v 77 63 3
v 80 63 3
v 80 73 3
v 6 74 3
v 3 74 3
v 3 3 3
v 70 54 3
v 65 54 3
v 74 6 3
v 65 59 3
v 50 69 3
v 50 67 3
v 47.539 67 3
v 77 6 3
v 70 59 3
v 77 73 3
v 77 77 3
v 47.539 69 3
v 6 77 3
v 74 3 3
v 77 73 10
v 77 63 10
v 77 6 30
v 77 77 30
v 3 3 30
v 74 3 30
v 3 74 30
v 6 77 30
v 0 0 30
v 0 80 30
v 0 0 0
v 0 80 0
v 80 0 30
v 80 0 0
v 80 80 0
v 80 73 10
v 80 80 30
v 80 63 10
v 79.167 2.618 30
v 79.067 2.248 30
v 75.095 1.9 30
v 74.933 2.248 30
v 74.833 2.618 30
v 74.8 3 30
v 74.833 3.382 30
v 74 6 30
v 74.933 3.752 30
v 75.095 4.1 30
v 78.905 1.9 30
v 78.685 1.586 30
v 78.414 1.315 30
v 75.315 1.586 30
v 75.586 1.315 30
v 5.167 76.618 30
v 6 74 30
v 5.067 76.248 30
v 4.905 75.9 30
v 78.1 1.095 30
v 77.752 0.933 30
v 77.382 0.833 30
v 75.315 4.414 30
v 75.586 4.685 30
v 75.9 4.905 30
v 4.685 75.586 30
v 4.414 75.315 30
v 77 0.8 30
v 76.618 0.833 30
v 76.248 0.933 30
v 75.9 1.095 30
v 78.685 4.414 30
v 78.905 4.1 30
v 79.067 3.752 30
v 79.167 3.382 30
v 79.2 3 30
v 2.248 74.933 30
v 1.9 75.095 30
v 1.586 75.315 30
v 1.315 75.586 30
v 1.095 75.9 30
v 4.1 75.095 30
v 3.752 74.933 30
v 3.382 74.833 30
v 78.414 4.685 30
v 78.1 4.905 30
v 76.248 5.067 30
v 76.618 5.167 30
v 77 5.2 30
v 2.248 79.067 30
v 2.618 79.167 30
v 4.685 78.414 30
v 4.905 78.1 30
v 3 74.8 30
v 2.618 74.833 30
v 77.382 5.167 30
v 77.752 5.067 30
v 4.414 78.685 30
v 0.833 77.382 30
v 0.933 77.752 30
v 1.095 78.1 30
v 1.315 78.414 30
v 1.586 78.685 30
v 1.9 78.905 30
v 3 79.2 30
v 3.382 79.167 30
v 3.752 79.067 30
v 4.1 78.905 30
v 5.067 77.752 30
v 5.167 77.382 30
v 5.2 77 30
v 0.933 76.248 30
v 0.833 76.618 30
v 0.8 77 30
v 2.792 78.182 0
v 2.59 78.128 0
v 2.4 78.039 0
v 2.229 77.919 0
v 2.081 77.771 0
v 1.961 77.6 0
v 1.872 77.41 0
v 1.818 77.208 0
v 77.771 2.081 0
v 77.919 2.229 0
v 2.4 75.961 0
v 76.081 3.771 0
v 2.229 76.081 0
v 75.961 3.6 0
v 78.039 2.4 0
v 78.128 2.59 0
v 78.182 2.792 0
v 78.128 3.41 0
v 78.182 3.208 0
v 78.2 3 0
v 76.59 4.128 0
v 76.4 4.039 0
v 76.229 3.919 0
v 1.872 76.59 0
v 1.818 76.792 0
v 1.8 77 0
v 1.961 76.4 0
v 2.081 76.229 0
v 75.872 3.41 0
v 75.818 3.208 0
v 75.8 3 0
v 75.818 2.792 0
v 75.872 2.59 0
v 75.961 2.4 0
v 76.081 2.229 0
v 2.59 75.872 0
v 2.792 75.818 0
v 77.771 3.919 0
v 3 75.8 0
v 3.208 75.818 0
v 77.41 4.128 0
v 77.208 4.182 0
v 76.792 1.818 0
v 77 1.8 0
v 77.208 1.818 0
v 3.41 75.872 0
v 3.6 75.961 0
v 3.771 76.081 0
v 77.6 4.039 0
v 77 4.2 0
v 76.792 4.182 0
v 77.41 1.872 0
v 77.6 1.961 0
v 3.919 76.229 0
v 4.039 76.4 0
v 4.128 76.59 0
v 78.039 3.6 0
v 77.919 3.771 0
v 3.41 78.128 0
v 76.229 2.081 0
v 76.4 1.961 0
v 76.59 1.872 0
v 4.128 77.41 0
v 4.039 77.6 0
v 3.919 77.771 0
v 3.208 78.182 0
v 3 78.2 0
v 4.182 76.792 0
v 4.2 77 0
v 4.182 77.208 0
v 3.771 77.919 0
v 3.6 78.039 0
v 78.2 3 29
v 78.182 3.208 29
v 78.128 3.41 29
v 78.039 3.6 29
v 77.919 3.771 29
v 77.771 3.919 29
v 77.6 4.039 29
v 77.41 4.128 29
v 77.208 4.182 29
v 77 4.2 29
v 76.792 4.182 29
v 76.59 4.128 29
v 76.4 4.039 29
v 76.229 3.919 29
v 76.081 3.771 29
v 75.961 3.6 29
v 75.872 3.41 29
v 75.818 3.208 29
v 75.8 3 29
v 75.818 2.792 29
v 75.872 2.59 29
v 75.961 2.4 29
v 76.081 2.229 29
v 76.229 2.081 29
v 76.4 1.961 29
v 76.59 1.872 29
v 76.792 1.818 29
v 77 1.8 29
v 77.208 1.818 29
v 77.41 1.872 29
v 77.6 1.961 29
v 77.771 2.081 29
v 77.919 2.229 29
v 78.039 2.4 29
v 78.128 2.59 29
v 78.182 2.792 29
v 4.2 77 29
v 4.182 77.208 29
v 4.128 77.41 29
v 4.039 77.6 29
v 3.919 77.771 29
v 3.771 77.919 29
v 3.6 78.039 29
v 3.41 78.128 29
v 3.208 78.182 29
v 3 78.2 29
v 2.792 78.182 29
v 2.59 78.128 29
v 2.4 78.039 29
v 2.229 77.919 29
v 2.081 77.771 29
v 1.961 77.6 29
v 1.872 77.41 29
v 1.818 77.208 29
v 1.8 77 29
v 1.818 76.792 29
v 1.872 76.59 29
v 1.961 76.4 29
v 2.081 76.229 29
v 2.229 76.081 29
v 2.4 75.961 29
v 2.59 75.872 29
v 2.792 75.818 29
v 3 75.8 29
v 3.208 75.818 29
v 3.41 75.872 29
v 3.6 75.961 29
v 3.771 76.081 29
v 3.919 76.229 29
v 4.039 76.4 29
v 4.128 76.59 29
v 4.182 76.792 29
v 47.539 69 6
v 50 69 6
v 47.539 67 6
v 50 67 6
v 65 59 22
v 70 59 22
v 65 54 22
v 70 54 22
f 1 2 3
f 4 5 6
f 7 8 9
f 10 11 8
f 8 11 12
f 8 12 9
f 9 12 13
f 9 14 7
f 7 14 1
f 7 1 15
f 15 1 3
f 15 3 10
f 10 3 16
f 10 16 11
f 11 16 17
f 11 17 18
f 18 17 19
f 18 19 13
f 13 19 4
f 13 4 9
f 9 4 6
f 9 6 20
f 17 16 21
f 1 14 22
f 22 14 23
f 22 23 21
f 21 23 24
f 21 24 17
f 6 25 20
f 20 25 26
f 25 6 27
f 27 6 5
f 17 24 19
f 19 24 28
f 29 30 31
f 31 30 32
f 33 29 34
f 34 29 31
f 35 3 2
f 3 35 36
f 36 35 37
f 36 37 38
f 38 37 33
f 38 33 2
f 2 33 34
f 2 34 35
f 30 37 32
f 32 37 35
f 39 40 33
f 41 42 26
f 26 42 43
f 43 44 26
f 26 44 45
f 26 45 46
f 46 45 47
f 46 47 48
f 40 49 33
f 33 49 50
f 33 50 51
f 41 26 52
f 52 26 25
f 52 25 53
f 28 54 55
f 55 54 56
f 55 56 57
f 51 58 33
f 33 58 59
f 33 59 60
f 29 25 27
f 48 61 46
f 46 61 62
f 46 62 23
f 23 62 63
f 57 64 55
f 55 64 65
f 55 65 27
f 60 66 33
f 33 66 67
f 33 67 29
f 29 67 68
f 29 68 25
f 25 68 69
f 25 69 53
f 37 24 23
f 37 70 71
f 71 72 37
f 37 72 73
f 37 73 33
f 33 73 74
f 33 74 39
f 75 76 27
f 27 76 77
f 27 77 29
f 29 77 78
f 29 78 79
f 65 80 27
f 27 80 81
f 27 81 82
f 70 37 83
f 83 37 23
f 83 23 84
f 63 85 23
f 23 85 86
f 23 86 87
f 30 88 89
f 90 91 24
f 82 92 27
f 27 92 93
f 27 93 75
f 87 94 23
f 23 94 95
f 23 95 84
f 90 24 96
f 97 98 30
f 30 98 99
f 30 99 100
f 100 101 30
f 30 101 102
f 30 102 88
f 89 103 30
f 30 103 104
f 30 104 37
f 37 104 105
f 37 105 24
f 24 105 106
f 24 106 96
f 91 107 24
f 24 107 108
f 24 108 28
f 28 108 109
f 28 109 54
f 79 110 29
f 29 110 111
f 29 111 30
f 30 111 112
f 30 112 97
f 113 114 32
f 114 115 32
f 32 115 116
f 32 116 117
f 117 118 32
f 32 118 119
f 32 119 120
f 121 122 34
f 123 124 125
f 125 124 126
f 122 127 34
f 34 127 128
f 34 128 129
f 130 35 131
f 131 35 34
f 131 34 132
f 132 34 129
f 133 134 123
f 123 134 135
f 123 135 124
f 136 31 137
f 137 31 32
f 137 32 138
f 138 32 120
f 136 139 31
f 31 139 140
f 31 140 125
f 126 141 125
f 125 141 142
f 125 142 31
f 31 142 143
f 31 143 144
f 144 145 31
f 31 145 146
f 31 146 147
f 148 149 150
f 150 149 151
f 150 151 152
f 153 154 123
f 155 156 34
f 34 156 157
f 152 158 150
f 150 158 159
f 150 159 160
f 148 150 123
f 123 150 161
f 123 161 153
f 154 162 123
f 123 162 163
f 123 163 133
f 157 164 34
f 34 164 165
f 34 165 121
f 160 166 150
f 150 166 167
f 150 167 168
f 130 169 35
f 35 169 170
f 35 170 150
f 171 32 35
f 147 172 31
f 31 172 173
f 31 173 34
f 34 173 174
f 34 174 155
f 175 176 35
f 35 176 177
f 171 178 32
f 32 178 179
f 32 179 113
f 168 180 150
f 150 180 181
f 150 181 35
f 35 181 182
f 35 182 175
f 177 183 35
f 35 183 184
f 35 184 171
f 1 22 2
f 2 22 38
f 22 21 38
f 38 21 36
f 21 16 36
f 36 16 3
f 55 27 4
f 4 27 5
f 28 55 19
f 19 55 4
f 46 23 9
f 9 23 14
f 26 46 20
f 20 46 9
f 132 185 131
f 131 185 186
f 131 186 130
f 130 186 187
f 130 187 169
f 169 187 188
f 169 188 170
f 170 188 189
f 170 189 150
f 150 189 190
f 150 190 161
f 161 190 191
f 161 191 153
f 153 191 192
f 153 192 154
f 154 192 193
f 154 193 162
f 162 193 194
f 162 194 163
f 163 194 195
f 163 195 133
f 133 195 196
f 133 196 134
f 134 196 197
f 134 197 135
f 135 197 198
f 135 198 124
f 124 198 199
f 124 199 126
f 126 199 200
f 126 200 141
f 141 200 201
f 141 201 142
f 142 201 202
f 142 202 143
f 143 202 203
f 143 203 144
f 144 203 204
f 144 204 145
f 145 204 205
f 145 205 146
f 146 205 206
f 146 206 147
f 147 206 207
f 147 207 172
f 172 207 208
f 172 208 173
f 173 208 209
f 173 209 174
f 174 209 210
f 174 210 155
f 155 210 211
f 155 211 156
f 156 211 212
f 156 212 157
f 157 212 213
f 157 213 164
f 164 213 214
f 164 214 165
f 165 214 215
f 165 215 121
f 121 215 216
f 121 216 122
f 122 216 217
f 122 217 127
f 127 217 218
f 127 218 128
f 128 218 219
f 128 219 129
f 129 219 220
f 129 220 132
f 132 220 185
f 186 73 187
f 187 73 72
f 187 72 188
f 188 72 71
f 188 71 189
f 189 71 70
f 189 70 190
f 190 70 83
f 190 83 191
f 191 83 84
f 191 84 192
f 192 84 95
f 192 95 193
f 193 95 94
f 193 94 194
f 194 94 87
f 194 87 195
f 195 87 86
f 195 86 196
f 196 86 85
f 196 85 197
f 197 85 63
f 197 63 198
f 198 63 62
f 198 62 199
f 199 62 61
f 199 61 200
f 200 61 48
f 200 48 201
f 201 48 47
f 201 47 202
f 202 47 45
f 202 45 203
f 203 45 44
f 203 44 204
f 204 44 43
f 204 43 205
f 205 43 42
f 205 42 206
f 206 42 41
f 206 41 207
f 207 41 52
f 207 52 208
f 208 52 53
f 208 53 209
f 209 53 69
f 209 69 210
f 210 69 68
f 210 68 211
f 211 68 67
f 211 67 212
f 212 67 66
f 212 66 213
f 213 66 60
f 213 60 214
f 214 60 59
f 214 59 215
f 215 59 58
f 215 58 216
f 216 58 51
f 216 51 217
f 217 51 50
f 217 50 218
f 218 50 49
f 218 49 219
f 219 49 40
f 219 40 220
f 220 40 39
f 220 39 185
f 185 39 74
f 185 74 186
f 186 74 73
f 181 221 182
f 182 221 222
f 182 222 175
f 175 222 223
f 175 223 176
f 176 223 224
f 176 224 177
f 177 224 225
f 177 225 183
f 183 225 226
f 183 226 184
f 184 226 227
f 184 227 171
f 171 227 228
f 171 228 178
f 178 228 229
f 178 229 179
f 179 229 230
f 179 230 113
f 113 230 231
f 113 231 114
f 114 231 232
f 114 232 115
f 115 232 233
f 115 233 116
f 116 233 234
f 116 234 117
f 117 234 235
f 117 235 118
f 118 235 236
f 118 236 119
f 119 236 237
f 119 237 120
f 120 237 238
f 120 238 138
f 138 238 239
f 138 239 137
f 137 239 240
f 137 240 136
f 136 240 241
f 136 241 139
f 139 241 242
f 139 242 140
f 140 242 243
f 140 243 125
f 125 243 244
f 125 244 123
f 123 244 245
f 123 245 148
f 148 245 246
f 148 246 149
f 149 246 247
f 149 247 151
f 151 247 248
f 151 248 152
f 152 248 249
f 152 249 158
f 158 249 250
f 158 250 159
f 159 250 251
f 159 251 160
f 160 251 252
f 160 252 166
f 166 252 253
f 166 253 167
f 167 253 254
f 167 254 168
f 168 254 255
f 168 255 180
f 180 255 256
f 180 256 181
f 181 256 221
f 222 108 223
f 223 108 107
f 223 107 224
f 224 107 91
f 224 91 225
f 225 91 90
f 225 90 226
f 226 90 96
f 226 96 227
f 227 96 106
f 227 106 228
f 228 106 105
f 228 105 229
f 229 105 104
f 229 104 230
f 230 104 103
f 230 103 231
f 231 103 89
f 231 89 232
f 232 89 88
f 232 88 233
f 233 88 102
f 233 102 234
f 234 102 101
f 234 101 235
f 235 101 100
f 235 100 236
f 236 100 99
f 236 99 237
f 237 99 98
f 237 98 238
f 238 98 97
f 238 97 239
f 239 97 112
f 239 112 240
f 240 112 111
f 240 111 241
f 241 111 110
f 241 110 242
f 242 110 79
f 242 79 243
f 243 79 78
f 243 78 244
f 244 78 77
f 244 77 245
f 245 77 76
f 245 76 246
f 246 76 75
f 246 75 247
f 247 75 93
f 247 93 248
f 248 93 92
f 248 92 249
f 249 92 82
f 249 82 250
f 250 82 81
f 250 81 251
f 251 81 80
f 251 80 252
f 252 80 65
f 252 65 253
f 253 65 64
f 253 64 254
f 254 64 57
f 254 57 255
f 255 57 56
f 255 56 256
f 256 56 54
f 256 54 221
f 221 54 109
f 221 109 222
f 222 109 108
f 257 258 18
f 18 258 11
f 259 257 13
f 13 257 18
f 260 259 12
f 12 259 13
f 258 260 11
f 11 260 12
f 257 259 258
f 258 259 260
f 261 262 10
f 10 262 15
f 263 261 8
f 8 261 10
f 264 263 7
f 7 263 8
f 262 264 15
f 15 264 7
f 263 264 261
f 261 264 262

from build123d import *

# Parameters (mm, degrees)
SKETCH1_W                                           = 80
SKETCH1_H                                           = 80
BOSS_EXTRUDE1_DEPTH                                 = 30
SKETCH2_W                                           = 74
SKETCH2_H                                           = 74
CUT_EXTRUDE1_DEPTH                                  = 27
CUT_EXTRUDE2_DEPTH                                  = 3
SKETCH5_W                                           = 3
SKETCH5_H                                           = 3
BOSS_EXTRUDE3_DEPTH                                 = 27
SKETCH6_W                                           = 3
SKETCH6_H                                           = 3
BOSS_EXTRUDE4_DEPTH                                 = 27
CSK_FOR_M2_COUNTERSUNK_FLAT_HEAD_SCREW1_D           = 2.4
CSK_FOR_M2_COUNTERSUNK_FLAT_HEAD_SCREW1_CSINK_D     = 4.4
CSK_FOR_M2_COUNTERSUNK_FLAT_HEAD_SCREW1_CSINK_ANGLE = 90
BOSS_EXTRUDE5_DEPTH                                 = 3
SKETCH10_W                                          = 5
SKETCH10_H                                          = 5
BOSS_EXTRUDE6_DEPTH                                 = 19


with BuildPart() as part:
    # Sketch1 → Boss-Extrude1 (new body)
    with BuildSketch(Plane.XY):
        with Locations((40, 40)):
            Rectangle(SKETCH1_W, SKETCH1_H)
    extrude(amount=BOSS_EXTRUDE1_DEPTH)

    # Sketch2 → Cut-Extrude1 (cut)
    with BuildSketch(Plane.XY.offset(30)):
        with Locations((40, 40)):
            Rectangle(SKETCH2_W, SKETCH2_H)
    extrude(amount=-CUT_EXTRUDE1_DEPTH, mode=Mode.SUBTRACT)

    # Sketch3 → Cut-Extrude2 (cut)
    with BuildSketch(Plane(origin=(80, 0, 0), x_dir=(0, 0, -1), z_dir=(1, 0, 0))):
        Polygon((-3, 68), (-3, 63), (-10, 63), (-10, 68), (-10, 73), (-3, 73), align=None)
    extrude(amount=-CUT_EXTRUDE2_DEPTH, mode=Mode.SUBTRACT)

    # Sketch5 → Boss-Extrude3 (add)
    with BuildSketch(Plane.XY.offset(3)):
        with Locations((4.5, 75.5)):
            Rectangle(SKETCH5_W, SKETCH5_H)
    extrude(amount=BOSS_EXTRUDE3_DEPTH)

    # Sketch6 → Boss-Extrude4 (add)
    with BuildSketch(Plane.XY.offset(3)):
        with Locations((75.5, 4.5)):
            Rectangle(SKETCH6_W, SKETCH6_H)
    extrude(amount=BOSS_EXTRUDE4_DEPTH)

    # CSK for M2 Countersunk Flat Head Screw1 (through all)
    with Locations(Plane.XY.offset(30)):
        with Locations((3, 77), (77, 3)):
            CounterSinkHole(CSK_FOR_M2_COUNTERSUNK_FLAT_HEAD_SCREW1_D / 2, CSK_FOR_M2_COUNTERSUNK_FLAT_HEAD_SCREW1_CSINK_D / 2, counter_sink_angle=CSK_FOR_M2_COUNTERSUNK_FLAT_HEAD_SCREW1_CSINK_ANGLE)

    # Sketch9 → Boss-Extrude5 (add)
    with BuildSketch(Plane.XY.offset(3)):
        Polygon((50, 68), (50, 69), (47.538755388, 69), (47.538755388, 68), (47.538755388, 67), (50, 67), align=None)
    extrude(amount=BOSS_EXTRUDE5_DEPTH)

    # Sketch10 → Boss-Extrude6 (add)
    with BuildSketch(Plane.XY.offset(3)):
        with Locations((67.5, 56.5)):
            Rectangle(SKETCH10_W, SKETCH10_H)
    extrude(amount=BOSS_EXTRUDE6_DEPTH)


solid = part.part
